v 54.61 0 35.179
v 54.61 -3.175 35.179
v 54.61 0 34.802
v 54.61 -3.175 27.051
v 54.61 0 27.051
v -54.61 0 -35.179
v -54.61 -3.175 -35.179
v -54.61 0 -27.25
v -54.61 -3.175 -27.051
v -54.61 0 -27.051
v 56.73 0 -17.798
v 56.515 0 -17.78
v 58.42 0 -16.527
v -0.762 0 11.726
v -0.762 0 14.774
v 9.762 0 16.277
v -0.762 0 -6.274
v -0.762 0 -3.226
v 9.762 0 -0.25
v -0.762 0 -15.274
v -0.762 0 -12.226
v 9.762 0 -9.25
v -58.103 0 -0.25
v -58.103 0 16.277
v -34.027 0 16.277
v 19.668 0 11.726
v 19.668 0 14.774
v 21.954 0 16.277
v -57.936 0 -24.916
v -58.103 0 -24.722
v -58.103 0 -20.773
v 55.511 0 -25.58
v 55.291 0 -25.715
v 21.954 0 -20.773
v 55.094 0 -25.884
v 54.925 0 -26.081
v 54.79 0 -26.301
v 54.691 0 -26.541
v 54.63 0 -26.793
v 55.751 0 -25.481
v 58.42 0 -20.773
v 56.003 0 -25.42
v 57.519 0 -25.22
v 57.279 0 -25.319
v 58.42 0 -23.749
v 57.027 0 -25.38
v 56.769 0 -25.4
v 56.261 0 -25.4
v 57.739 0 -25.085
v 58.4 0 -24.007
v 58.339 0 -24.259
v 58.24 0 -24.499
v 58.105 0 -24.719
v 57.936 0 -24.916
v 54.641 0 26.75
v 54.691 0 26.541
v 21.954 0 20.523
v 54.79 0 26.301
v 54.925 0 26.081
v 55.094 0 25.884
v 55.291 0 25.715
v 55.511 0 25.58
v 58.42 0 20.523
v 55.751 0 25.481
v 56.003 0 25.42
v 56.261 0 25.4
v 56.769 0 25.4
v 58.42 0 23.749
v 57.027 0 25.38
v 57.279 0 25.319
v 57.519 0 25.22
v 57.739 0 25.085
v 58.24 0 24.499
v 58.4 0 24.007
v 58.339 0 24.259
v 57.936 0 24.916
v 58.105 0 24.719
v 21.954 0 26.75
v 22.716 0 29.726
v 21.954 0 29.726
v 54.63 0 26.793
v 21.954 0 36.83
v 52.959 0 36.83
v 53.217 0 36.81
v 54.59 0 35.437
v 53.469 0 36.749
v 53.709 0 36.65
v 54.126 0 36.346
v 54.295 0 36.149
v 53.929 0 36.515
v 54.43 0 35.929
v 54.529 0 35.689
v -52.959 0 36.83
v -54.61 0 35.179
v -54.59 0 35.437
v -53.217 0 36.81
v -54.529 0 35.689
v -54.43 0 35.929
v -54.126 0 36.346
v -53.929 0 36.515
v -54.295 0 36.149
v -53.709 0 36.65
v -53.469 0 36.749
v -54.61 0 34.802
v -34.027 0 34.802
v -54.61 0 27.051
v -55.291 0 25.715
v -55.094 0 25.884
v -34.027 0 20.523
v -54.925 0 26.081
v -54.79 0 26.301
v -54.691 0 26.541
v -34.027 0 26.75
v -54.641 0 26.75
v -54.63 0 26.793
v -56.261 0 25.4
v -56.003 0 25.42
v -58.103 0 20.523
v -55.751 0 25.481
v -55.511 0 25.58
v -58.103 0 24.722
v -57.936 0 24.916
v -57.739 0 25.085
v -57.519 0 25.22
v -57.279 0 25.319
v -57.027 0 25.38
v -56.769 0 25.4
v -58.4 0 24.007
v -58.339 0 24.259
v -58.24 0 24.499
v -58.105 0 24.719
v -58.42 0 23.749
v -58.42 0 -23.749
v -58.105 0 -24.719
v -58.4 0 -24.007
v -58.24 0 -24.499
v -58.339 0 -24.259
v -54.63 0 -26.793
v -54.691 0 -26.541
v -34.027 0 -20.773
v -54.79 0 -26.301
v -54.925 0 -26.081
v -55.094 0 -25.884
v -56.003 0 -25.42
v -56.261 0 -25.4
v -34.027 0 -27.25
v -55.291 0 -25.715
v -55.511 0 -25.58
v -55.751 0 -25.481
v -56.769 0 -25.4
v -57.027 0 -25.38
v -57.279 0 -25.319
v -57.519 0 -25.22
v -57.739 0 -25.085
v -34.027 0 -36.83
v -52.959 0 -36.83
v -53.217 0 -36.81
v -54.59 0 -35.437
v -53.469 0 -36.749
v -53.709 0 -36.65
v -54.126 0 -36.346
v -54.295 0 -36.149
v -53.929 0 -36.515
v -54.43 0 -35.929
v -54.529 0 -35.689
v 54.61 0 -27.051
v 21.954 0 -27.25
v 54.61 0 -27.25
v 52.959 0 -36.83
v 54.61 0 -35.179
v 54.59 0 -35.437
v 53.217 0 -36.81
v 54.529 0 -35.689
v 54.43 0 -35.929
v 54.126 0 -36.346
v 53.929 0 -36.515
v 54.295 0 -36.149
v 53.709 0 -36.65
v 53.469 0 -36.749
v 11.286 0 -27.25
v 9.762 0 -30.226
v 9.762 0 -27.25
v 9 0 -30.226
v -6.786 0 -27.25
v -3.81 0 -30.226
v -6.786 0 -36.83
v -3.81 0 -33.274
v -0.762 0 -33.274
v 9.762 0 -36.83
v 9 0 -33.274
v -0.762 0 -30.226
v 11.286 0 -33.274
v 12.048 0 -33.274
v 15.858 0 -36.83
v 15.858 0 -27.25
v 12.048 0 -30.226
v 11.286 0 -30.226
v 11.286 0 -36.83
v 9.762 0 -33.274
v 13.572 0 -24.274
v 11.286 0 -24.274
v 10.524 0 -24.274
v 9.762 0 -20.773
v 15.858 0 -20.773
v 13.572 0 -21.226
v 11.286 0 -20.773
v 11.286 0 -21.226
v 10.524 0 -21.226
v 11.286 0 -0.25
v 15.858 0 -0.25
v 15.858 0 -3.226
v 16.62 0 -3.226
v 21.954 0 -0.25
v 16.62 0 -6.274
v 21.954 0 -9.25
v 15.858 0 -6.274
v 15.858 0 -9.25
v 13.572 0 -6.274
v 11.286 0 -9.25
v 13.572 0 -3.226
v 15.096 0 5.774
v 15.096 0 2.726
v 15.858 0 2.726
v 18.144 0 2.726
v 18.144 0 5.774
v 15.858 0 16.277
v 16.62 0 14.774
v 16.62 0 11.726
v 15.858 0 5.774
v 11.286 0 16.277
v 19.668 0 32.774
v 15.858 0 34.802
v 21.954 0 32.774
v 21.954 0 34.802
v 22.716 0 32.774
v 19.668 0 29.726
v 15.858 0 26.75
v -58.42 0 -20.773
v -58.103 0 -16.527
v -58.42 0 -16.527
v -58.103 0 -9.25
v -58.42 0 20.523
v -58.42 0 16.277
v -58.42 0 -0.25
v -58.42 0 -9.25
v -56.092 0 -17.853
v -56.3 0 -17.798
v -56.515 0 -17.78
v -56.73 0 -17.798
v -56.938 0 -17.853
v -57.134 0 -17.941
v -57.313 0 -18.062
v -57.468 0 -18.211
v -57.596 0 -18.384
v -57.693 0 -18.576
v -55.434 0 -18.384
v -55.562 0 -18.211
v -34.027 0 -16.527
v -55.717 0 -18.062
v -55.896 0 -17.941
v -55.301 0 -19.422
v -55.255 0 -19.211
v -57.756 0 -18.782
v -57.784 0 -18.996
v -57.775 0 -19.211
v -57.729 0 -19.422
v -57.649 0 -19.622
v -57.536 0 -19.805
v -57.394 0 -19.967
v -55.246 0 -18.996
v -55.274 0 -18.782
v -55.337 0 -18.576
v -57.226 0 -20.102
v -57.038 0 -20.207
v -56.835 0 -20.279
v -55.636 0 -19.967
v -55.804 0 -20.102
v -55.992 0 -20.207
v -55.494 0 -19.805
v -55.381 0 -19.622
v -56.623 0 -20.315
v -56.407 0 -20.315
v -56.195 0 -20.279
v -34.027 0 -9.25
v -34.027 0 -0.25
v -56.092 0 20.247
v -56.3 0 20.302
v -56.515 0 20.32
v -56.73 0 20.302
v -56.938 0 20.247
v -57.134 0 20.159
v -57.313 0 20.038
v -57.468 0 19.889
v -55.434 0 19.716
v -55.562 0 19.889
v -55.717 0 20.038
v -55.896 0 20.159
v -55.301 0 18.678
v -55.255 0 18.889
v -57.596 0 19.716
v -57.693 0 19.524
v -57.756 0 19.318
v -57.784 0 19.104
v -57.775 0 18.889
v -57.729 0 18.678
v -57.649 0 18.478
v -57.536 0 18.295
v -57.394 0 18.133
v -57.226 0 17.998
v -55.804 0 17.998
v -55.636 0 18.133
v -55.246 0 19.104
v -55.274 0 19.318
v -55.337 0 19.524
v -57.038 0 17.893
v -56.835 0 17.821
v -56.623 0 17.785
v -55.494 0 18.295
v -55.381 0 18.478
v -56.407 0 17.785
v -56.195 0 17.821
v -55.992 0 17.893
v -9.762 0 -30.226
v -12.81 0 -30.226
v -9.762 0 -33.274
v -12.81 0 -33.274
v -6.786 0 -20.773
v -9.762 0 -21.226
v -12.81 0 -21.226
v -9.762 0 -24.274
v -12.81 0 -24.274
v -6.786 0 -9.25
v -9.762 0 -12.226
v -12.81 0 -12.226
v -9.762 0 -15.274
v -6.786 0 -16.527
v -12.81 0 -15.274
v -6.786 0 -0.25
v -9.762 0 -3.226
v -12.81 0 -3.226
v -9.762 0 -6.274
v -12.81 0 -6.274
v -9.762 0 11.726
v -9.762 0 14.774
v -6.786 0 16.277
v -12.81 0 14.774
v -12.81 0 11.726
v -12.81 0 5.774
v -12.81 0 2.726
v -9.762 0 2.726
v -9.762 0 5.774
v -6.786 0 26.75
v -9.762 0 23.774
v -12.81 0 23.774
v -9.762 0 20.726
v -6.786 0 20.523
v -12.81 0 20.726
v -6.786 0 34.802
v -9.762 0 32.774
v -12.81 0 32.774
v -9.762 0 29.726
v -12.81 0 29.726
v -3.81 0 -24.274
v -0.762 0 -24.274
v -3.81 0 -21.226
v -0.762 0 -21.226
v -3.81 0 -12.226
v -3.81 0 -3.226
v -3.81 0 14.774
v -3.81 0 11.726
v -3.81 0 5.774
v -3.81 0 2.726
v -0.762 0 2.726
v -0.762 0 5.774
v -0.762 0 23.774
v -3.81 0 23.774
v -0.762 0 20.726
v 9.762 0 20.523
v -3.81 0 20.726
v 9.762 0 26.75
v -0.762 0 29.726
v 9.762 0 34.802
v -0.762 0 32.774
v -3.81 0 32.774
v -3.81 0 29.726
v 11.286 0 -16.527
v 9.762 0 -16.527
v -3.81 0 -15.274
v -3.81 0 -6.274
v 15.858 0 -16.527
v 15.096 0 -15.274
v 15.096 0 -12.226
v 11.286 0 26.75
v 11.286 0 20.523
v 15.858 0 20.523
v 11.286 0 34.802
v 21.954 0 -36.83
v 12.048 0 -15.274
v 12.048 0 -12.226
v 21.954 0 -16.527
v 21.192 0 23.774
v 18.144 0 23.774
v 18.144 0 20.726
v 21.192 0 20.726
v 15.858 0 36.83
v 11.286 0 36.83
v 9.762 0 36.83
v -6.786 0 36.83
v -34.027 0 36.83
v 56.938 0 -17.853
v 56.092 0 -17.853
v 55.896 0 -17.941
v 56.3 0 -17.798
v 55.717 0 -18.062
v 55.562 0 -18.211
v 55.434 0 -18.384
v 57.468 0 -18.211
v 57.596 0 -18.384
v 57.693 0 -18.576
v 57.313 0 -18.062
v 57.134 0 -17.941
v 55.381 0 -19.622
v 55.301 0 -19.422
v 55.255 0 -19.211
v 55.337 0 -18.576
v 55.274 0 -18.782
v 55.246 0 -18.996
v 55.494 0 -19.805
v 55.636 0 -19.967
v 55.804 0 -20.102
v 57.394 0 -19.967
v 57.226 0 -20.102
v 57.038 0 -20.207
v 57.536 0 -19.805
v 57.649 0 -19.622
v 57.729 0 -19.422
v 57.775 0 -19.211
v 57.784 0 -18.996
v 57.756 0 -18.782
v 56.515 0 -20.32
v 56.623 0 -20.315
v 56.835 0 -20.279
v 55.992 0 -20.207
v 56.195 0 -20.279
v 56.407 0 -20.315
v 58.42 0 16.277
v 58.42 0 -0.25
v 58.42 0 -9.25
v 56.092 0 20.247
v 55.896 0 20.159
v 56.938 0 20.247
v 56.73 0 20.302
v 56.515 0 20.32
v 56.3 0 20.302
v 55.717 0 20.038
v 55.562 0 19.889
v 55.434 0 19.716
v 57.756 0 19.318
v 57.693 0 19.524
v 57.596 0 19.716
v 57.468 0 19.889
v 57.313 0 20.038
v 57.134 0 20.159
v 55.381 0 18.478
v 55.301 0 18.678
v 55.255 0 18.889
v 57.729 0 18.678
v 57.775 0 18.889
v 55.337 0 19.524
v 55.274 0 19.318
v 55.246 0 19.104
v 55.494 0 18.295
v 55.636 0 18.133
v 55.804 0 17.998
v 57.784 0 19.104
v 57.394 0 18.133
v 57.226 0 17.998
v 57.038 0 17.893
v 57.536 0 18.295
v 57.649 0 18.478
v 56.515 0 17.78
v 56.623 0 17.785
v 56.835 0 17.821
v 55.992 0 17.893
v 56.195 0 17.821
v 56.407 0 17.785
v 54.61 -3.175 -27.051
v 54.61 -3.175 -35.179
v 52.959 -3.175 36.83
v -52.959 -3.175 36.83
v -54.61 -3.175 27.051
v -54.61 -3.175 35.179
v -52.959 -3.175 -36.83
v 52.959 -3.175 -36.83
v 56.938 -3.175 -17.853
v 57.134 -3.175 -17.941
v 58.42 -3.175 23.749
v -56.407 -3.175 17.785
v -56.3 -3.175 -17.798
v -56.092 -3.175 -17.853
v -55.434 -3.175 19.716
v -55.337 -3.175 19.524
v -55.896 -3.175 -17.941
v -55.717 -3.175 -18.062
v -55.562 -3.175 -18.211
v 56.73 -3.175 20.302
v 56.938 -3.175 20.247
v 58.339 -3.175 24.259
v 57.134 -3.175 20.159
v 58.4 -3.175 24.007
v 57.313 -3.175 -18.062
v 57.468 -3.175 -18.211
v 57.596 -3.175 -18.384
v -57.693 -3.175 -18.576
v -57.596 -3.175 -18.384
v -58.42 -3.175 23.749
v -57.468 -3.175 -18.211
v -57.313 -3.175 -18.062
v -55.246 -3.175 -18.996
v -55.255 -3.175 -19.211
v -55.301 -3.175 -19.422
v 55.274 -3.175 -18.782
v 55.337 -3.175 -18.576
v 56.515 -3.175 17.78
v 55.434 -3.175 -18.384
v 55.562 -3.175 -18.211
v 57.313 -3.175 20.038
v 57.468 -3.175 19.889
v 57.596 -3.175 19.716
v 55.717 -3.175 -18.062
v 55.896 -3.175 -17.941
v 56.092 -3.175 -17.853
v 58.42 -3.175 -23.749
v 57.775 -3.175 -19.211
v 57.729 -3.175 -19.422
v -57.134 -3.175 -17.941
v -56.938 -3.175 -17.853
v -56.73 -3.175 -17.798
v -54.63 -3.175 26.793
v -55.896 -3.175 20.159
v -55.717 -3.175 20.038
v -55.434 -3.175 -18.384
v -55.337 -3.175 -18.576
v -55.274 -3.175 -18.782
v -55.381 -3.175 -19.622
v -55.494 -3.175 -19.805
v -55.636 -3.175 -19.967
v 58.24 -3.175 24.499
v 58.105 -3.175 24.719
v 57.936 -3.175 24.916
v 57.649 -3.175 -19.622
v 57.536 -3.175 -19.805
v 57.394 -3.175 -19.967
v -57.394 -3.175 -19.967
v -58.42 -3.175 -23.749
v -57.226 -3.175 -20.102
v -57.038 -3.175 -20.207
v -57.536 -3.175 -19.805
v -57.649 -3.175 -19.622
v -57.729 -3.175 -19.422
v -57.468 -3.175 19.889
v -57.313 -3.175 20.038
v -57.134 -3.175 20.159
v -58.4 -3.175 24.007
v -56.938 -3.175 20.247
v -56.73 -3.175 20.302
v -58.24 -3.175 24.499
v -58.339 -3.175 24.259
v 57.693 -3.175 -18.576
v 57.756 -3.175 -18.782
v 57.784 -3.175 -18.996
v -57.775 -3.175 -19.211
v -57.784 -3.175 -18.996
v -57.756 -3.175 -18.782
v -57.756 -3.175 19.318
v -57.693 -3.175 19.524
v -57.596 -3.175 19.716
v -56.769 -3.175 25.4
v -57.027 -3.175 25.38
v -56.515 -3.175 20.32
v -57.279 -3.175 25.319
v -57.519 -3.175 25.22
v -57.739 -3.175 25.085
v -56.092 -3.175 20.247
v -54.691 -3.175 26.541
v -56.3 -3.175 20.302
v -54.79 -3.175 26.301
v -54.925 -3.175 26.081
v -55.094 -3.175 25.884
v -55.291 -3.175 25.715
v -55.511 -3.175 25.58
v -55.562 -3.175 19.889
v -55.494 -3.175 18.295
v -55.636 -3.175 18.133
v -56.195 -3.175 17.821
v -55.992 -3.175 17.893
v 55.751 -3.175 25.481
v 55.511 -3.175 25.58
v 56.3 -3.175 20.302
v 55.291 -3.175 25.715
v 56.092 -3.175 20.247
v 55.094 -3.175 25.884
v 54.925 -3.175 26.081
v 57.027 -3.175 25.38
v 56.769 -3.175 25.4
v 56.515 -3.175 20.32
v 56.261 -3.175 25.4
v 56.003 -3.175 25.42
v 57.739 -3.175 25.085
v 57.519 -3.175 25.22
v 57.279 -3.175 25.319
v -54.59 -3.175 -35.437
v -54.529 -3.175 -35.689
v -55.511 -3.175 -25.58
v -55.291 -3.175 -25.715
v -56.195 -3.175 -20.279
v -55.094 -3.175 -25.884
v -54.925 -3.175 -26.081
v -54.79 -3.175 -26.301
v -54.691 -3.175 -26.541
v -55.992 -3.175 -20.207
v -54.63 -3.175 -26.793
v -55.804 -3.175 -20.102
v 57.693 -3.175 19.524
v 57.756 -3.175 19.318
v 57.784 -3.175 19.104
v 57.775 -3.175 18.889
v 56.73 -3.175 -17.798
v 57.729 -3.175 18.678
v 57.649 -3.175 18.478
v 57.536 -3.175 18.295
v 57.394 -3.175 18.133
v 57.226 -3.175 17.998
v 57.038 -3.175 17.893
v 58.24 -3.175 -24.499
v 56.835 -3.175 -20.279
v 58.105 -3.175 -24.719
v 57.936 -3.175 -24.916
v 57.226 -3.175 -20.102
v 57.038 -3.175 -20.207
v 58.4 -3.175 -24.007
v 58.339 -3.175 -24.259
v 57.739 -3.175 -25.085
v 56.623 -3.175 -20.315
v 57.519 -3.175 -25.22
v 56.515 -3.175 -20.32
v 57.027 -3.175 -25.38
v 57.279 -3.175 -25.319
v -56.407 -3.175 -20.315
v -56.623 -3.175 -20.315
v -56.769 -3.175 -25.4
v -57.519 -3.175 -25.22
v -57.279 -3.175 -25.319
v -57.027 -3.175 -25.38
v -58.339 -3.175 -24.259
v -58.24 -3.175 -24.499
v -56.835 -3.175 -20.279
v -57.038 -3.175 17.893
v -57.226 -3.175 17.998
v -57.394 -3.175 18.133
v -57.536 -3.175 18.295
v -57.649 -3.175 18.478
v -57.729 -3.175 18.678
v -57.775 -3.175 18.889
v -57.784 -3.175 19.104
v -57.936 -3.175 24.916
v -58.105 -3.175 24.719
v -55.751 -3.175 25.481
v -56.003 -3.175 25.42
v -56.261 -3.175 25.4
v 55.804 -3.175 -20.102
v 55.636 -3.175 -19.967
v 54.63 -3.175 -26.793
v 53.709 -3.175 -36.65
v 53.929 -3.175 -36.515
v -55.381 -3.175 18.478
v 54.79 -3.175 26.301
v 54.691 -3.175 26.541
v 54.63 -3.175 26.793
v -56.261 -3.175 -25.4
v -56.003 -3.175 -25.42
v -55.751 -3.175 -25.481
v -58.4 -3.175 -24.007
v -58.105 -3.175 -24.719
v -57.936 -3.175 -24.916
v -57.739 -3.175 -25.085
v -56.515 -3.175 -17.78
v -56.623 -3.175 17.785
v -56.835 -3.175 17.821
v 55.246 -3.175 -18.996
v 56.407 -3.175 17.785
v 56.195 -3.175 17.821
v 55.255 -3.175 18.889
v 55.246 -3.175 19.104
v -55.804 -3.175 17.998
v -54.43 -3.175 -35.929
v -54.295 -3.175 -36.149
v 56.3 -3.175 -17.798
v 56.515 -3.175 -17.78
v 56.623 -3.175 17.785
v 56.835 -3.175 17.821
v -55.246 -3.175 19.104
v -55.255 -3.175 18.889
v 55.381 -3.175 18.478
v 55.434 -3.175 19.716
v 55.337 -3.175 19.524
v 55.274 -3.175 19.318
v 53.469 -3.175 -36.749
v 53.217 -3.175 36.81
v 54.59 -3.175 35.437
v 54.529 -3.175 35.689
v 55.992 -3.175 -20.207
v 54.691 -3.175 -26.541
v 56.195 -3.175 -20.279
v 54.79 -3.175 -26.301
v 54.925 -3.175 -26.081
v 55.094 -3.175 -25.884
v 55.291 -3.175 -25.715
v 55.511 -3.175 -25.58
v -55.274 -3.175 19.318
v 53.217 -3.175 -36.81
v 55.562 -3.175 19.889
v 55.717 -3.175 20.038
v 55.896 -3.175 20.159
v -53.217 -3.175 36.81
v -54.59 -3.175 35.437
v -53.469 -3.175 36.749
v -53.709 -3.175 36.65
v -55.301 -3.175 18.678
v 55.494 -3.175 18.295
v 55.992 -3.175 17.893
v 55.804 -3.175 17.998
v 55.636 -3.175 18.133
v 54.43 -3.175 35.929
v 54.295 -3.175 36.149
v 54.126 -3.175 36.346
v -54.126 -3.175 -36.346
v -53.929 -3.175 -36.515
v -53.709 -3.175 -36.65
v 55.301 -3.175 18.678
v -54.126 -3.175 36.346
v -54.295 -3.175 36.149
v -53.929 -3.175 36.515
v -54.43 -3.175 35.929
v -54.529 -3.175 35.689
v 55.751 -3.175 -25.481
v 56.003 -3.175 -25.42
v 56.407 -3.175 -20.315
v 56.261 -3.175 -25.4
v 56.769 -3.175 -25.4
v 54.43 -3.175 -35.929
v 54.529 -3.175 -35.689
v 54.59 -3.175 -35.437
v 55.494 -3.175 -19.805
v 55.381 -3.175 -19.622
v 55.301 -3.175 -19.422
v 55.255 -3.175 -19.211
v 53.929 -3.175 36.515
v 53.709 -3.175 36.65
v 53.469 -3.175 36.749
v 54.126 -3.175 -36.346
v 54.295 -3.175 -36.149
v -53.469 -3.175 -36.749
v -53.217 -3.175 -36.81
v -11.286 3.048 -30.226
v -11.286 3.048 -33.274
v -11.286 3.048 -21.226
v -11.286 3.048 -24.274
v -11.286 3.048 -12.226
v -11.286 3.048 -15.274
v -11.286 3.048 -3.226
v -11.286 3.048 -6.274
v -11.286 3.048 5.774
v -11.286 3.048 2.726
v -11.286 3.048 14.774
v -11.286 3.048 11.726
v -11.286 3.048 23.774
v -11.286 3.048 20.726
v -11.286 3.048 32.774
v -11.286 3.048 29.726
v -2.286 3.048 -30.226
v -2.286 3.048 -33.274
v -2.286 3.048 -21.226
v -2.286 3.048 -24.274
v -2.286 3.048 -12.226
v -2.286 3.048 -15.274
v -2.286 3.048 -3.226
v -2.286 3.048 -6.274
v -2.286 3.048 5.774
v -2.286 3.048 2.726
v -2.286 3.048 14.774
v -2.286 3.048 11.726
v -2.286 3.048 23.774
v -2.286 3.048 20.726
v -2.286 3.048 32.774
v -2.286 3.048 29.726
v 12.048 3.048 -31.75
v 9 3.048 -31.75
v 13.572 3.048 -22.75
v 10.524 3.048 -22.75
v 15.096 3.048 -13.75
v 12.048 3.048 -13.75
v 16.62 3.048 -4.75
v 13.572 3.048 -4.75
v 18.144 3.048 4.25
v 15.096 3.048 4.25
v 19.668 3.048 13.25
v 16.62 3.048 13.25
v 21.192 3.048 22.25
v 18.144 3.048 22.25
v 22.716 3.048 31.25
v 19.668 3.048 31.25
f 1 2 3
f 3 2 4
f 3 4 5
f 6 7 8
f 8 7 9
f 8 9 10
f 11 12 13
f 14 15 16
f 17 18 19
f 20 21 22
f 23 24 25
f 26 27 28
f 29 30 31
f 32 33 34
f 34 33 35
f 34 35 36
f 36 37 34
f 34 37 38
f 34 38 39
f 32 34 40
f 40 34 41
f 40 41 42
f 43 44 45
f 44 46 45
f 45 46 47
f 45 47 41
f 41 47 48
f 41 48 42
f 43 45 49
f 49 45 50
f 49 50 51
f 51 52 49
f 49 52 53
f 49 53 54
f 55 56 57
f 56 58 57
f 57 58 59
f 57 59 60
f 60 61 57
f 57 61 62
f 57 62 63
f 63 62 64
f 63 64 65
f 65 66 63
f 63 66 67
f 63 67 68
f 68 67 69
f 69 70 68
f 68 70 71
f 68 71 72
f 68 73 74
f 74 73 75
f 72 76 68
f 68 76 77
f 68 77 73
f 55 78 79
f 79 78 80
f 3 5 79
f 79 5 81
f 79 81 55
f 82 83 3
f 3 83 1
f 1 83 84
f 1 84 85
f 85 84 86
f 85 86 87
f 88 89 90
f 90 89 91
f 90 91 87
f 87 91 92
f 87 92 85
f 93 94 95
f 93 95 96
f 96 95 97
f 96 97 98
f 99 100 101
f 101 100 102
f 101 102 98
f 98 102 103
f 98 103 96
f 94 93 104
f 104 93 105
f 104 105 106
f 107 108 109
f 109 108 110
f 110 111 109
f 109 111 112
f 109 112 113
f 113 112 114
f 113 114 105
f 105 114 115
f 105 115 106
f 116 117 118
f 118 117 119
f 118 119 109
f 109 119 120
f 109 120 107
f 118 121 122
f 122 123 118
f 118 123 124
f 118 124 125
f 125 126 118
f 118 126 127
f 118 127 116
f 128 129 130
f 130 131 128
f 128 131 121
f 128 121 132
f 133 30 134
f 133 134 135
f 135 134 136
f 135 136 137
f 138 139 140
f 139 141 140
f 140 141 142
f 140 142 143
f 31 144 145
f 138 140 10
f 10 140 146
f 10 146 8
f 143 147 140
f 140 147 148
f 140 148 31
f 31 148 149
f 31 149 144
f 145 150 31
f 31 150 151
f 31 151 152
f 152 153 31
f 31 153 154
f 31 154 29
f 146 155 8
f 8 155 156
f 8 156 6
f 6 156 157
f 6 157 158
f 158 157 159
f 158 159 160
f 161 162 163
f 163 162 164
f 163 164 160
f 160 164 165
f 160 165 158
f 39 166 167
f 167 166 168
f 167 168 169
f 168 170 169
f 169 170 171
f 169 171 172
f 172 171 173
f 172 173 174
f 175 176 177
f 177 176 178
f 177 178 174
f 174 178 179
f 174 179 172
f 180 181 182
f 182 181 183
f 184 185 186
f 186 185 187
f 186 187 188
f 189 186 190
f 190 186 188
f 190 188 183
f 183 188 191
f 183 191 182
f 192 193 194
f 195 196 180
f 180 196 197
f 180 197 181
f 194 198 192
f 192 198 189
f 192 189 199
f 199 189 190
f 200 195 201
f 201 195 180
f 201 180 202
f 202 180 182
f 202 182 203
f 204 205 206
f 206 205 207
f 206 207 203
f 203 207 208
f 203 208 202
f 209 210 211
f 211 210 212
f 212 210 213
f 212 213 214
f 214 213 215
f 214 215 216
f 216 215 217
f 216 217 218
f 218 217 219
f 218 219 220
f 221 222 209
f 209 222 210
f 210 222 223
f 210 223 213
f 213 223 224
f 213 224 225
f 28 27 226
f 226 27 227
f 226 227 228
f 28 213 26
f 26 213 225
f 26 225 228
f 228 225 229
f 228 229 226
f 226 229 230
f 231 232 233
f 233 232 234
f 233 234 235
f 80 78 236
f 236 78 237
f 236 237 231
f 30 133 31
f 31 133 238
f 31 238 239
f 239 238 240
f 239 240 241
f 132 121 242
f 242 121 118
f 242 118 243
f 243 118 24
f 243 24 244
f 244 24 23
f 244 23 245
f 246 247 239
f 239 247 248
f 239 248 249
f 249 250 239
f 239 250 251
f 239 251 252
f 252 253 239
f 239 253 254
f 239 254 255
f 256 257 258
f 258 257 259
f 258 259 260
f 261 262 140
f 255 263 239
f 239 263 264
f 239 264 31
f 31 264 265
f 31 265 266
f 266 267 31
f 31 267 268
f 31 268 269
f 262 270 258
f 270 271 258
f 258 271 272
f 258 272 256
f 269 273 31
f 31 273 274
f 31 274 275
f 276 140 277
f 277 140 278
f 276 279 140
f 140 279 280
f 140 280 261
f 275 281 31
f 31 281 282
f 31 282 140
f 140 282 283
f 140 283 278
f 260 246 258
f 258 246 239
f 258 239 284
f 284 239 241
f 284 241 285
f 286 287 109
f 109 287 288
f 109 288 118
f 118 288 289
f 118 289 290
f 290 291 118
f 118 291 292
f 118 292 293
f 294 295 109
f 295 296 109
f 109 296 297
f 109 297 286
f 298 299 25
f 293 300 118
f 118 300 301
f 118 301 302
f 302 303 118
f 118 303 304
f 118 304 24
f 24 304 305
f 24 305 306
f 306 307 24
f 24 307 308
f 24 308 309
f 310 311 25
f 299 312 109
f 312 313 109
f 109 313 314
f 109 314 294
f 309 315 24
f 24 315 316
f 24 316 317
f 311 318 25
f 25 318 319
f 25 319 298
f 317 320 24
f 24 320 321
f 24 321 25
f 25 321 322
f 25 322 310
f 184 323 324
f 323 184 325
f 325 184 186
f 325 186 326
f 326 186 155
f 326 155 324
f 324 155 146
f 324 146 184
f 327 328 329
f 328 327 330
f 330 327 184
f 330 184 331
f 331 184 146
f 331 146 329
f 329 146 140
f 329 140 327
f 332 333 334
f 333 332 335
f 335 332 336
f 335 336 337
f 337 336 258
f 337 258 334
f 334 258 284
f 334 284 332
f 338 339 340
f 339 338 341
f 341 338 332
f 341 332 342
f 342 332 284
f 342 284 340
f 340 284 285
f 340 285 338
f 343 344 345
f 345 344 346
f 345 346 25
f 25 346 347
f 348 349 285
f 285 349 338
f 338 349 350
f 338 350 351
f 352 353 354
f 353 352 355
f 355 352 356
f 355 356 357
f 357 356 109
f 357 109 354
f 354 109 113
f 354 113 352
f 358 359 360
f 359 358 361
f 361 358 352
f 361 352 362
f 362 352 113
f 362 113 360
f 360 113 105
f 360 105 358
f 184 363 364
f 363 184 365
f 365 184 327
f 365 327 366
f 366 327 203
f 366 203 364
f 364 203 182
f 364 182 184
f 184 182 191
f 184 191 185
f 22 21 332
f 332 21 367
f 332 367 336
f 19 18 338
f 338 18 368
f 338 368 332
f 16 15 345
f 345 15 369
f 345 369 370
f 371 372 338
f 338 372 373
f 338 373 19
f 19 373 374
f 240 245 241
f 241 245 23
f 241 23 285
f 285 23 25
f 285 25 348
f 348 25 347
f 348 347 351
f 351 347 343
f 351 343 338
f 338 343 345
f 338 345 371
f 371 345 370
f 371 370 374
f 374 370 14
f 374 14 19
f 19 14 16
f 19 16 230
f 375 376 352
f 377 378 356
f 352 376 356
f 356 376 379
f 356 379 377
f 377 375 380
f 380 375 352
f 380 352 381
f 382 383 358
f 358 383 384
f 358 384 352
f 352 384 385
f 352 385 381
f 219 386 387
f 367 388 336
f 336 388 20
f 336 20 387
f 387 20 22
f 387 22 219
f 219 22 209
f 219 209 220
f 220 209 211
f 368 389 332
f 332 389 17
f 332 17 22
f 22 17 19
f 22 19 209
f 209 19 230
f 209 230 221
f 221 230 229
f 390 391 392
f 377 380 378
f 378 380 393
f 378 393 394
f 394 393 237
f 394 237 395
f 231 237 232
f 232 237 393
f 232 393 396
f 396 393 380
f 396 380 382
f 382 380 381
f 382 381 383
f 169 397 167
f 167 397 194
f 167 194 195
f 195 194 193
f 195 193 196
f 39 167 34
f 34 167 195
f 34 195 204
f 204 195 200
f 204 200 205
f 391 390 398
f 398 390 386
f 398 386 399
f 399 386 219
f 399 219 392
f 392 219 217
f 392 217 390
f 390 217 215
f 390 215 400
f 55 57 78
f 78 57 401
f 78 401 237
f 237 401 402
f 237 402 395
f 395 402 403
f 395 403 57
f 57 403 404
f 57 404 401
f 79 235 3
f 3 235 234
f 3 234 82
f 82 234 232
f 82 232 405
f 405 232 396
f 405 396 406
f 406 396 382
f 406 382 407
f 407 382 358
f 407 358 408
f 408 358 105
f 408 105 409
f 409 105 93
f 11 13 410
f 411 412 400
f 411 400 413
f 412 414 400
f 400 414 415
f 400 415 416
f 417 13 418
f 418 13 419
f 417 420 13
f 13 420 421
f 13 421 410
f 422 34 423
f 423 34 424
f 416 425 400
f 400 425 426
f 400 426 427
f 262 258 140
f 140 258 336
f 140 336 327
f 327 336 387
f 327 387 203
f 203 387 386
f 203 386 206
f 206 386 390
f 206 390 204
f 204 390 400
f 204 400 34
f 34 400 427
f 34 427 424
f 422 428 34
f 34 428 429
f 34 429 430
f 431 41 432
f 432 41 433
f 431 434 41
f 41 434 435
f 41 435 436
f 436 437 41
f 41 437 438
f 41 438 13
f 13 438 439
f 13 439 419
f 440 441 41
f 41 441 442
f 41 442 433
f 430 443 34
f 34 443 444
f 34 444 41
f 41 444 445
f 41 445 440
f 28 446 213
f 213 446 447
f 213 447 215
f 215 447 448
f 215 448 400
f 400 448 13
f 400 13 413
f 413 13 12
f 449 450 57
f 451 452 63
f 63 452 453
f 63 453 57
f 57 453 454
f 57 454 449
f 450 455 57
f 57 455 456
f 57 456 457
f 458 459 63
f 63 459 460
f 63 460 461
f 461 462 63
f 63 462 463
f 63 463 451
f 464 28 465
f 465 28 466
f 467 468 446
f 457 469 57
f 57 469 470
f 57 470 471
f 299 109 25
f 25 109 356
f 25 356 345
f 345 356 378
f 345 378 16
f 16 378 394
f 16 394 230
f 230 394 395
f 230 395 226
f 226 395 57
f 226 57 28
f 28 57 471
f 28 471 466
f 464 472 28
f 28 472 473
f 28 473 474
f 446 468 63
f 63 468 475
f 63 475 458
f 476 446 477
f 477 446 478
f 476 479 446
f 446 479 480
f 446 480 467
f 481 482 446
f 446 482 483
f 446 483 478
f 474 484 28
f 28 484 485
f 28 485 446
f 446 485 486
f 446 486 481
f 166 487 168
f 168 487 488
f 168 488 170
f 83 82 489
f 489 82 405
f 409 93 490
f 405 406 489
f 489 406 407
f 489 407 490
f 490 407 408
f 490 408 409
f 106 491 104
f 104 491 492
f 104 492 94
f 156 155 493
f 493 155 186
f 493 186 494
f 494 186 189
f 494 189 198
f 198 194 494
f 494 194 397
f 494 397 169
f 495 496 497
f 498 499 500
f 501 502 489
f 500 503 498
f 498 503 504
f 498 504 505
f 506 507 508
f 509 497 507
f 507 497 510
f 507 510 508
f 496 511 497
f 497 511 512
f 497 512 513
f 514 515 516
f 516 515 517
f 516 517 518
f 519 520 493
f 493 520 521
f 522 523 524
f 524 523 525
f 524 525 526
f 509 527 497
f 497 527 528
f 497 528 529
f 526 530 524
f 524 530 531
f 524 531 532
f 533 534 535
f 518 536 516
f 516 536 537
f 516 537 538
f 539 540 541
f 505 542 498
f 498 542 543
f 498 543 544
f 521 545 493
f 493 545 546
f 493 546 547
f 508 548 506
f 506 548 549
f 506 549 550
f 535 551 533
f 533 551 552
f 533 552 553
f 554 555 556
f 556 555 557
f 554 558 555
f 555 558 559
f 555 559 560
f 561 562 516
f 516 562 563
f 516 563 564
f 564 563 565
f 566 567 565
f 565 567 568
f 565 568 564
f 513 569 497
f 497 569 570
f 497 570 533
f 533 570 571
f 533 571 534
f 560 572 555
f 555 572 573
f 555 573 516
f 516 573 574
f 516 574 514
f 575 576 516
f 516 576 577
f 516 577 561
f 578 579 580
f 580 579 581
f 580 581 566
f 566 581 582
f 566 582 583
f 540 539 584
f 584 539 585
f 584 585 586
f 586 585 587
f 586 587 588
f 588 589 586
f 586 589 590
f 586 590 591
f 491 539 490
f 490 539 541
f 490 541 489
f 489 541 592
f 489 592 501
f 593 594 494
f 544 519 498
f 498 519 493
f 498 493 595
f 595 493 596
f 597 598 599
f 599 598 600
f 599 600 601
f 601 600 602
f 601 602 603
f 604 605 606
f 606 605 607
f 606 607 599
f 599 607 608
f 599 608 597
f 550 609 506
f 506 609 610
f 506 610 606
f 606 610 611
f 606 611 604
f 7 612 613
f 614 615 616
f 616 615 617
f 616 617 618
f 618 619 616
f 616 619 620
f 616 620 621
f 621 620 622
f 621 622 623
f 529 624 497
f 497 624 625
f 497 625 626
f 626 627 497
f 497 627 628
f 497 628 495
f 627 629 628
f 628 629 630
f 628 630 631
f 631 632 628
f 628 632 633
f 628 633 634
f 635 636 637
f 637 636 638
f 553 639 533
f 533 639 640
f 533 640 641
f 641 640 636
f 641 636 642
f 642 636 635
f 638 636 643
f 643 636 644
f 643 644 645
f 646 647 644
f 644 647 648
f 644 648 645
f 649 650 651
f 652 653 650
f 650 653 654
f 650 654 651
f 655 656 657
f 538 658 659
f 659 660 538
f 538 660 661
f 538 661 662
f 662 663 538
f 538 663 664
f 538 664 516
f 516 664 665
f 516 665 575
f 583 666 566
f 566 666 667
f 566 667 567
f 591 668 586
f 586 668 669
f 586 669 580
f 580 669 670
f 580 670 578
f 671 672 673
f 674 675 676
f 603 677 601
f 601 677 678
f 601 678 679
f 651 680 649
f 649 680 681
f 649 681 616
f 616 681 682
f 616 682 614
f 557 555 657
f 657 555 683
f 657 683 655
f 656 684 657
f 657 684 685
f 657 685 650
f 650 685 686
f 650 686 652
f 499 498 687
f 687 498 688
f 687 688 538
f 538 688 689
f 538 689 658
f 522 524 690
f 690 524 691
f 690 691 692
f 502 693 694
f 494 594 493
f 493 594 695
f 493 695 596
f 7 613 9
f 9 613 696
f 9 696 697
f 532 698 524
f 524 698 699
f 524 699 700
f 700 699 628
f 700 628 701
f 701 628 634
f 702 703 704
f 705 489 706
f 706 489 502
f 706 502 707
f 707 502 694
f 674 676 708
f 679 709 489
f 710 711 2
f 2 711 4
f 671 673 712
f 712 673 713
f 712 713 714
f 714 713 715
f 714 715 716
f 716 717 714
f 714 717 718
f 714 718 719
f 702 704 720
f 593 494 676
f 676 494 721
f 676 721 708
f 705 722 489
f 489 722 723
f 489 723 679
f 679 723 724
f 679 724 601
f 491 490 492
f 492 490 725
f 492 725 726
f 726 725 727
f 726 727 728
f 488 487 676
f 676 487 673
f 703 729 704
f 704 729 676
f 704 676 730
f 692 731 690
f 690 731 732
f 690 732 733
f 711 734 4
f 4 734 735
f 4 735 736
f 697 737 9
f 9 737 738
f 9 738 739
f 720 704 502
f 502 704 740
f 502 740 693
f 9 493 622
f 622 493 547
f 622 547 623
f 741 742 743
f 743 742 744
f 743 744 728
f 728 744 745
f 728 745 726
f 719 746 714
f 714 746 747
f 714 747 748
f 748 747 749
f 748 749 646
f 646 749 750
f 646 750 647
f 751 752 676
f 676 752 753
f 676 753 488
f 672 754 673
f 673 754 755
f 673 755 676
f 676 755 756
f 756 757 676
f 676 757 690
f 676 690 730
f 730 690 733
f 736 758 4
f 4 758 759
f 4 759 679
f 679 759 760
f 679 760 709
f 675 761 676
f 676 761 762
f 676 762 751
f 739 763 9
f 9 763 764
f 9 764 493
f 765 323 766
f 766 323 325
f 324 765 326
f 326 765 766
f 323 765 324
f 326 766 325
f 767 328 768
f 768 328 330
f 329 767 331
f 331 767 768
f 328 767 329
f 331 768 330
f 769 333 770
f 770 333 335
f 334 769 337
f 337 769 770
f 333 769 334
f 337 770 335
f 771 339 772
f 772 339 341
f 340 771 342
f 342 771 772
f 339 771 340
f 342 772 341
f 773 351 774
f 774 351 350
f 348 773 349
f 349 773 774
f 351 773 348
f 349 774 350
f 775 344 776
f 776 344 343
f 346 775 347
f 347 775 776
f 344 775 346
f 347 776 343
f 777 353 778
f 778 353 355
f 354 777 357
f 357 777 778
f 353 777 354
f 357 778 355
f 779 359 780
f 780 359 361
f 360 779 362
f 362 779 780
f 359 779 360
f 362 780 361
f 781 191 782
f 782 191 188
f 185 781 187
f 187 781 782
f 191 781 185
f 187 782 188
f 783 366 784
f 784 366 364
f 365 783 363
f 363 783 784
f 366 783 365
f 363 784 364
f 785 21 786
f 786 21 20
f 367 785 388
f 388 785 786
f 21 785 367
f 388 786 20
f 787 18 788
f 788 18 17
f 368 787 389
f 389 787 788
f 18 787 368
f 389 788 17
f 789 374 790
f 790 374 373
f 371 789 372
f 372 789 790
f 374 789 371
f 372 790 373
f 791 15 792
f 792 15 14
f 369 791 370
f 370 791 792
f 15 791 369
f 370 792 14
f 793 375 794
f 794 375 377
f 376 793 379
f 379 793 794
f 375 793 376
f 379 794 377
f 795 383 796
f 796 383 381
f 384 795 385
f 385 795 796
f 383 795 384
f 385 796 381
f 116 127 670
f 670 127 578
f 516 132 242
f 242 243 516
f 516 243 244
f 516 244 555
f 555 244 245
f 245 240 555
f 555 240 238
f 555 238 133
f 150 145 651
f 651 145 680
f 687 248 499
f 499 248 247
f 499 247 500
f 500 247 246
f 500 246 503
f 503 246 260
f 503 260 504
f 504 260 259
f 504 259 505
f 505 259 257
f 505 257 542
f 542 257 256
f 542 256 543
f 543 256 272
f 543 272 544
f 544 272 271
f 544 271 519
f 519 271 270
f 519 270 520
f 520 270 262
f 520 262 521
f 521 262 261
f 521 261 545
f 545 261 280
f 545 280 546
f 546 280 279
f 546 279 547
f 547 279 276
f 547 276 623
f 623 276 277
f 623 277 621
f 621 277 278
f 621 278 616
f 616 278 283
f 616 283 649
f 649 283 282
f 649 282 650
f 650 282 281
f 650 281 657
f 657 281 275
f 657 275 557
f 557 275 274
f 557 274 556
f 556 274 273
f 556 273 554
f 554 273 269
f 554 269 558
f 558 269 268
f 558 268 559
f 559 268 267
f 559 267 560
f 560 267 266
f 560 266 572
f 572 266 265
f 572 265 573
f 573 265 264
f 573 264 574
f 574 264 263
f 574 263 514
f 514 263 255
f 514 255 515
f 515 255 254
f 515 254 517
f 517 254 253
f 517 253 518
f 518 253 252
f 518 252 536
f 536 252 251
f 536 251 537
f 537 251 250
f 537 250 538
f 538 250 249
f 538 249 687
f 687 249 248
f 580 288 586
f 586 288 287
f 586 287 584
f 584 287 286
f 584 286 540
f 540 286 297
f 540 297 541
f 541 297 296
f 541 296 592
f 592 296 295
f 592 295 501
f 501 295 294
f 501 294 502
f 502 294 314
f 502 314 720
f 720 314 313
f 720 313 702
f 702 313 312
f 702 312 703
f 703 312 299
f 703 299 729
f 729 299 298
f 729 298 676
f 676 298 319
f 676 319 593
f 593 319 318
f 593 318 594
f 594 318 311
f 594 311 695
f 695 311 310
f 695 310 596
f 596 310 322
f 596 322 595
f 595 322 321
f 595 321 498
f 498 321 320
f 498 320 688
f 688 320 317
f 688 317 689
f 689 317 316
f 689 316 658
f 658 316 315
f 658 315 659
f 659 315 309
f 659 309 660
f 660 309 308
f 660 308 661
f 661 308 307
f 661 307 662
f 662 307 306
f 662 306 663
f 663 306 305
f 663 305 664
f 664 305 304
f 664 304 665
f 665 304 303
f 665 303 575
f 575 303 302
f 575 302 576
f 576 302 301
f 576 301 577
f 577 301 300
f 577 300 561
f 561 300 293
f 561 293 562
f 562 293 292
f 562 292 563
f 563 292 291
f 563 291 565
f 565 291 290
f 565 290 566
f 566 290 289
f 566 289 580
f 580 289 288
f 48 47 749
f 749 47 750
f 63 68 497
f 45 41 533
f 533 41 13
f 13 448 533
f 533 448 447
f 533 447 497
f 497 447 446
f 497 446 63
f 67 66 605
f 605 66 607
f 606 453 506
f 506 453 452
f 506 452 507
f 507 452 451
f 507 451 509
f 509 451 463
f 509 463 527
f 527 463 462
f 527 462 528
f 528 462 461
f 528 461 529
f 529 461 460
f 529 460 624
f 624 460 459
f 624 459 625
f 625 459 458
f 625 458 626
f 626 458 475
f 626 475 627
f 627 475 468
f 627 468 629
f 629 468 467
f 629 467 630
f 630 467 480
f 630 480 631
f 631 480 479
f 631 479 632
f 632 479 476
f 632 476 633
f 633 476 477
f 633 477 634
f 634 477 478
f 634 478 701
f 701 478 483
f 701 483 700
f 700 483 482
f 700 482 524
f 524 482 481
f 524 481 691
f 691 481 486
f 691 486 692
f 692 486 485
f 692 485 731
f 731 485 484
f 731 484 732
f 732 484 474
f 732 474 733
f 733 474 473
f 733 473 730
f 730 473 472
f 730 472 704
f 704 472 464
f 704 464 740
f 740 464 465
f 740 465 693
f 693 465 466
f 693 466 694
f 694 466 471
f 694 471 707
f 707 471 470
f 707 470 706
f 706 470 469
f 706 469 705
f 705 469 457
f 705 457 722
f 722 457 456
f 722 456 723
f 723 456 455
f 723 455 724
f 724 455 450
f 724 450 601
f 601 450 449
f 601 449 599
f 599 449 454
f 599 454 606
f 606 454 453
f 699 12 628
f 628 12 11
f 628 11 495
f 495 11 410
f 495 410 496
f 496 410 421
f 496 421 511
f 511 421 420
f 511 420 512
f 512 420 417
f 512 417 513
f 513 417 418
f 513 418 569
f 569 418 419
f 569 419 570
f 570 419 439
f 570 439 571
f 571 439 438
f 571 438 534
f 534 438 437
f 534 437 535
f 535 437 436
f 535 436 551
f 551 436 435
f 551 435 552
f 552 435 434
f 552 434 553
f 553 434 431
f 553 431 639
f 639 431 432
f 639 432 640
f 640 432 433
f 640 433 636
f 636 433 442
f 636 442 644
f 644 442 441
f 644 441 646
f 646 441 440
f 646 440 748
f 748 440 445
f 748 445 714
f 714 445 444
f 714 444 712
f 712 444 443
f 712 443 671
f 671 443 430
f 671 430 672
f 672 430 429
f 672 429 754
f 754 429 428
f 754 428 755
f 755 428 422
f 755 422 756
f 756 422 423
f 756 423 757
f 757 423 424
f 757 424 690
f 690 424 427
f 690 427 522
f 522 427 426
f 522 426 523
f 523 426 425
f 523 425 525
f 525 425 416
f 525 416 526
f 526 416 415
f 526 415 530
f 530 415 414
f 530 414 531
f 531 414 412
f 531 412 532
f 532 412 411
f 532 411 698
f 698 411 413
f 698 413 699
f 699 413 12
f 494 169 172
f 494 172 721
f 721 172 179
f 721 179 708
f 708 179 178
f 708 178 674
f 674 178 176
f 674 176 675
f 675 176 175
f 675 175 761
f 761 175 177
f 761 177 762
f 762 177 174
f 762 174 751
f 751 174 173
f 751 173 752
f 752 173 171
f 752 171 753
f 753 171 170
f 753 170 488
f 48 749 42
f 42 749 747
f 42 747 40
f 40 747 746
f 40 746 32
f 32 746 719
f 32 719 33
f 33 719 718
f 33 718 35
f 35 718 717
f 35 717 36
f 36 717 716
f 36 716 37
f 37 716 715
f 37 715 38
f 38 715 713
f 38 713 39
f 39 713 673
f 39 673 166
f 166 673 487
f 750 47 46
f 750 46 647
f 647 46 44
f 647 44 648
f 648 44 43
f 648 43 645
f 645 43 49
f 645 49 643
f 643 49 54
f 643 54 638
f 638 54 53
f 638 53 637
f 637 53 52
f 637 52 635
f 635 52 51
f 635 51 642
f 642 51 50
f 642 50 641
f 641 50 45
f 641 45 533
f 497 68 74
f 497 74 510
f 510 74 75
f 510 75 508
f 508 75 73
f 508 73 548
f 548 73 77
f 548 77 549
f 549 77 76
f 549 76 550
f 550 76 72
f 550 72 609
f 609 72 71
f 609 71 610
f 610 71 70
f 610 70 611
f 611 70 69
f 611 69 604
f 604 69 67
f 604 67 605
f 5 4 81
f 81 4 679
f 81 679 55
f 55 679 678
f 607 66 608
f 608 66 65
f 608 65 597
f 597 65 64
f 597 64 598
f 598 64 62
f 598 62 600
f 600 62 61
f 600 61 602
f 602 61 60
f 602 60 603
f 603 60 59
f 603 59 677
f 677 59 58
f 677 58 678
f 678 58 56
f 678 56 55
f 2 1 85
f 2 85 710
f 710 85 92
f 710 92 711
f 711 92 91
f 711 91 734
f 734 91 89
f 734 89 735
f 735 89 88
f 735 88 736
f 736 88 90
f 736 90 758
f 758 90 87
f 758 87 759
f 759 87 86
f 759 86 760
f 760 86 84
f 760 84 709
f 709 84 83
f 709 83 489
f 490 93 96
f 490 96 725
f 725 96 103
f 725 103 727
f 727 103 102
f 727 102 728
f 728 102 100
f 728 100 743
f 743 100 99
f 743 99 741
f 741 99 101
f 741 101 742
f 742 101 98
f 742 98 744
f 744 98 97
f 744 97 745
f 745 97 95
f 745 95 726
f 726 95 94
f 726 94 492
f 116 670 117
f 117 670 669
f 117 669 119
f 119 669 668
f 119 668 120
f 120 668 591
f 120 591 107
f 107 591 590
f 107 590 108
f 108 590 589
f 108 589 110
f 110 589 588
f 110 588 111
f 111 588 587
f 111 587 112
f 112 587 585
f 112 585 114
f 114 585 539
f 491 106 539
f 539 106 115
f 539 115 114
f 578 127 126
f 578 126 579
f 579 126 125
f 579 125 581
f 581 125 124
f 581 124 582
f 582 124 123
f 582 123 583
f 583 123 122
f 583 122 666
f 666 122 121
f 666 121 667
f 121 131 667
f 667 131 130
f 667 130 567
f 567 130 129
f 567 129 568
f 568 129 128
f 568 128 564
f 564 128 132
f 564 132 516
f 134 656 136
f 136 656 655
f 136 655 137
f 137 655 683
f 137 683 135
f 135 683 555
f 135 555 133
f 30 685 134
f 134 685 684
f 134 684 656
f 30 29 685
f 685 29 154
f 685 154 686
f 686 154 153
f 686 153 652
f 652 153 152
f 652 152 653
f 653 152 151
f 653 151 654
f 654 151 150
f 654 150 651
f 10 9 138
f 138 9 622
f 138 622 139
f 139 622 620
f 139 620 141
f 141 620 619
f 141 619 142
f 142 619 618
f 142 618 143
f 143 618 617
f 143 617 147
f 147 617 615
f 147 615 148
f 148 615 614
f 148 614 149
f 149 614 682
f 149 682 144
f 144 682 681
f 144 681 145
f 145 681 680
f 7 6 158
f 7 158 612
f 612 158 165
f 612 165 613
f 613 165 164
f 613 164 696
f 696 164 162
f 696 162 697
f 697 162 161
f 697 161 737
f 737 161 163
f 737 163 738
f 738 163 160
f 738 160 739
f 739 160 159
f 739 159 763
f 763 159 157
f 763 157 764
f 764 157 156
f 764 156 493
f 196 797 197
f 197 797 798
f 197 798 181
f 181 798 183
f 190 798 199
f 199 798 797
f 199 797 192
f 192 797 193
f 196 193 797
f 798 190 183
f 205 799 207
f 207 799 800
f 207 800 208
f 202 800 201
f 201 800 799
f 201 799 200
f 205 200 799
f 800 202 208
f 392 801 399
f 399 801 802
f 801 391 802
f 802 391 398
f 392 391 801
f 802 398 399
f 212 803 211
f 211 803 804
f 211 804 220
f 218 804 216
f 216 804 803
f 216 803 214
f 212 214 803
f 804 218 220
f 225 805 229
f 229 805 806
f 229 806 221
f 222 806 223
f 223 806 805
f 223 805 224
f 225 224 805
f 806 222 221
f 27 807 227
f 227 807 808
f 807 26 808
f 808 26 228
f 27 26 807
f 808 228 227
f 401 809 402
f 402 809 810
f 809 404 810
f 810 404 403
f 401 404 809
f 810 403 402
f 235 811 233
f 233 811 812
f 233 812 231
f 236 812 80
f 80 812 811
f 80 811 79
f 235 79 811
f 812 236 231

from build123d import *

# Parameters (mm, degrees)
SKETCH1_W            = 109.22
SKETCH1_H            = 73.66
BOSS_EXTRUDE1_DEPTH  = 3.175
BOSS_EXTRUDE3_DEPTH  = 1.524
LPATTERN1_COUNT      = 2
LPATTERN1_PITCH      = 9.000000034
LPATTERN1_COUNT_DIR2 = 8
LPATTERN1_PITCH_DIR2 = 9.000000034
SKETCH3_W            = 3.81
SKETCH3_H            = 50.8
SKETCH3_R            = 1.27
BOSS_EXTRUDE2_DEPTH  = 3.175
FILLET1_R            = 1.651
BOSS_EXTRUDE4_START  = 8.999982
BOSS_EXTRUDE4_DEPTH  = 3.048
BOSS_EXTRUDE5_START  = 10.523982
BOSS_EXTRUDE5_DEPTH  = 3.048
BOSS_EXTRUDE6_START  = 12.047982
BOSS_EXTRUDE6_DEPTH  = 3.048
BOSS_EXTRUDE7_START  = 13.571982
BOSS_EXTRUDE7_DEPTH  = 3.048
BOSS_EXTRUDE8_START  = 15.095982
BOSS_EXTRUDE8_DEPTH  = 3.048
BOSS_EXTRUDE9_START  = 16.619982
BOSS_EXTRUDE9_DEPTH  = 3.048
BOSS_EXTRUDE10_START = 18.143982
BOSS_EXTRUDE10_DEPTH = 3.048
BOSS_EXTRUDE11_START = 19.667982
BOSS_EXTRUDE11_DEPTH = 3.048


with BuildPart() as part:
    # Sketch1 → Boss-Extrude1 (new body)
    with BuildSketch(Plane(origin=(0, 0, 0), x_dir=(1, 0, 0), z_dir=(0, 1, 0))):
        Rectangle(SKETCH1_W, SKETCH1_H)
    extrude(amount=-BOSS_EXTRUDE1_DEPTH)

    # Sketch2 → Boss-Extrude3 (add, symmetric)
    with BuildSketch(Plane.XY.offset(-31.75)):
        Polygon((-12.810000034, 0), (-11.286000034, 3.048), (-9.762000034, 0), (-11.286000034, 0), align=None)
    boss_extrude3 = extrude(amount=BOSS_EXTRUDE3_DEPTH, both=True)

    # LPattern1: Boss-Extrude3 2 × 8
    with Locations(*[(i * LPATTERN1_PITCH, 0, j * LPATTERN1_PITCH_DIR2) for i in range(LPATTERN1_COUNT) for j in range(LPATTERN1_COUNT_DIR2) if (i, j) != (0, 0)]):
        add(boss_extrude3)

    # Sketch3 → Boss-Extrude2 (add)
    # profile 1 of 2: a face of its own
    with BuildSketch(Plane(origin=(0, 0, 0), x_dir=(1, 0, 0), z_dir=(0, 1, 0))):
        with Locations((-56.515, 0)):
            Rectangle(SKETCH3_W, SKETCH3_H)
        with Locations(Location((-56.515, 19.05, 0), (0, 0, 270))):
            Circle(SKETCH3_R, mode=Mode.SUBTRACT)
        with Locations(Location((-56.515, -19.05, 0), (0, 0, 270))):
            Circle(SKETCH3_R, mode=Mode.SUBTRACT)
    # profile 2 of 2: a face of its own
    with BuildSketch(Plane(origin=(0, 0, 0), x_dir=(1, 0, 0), z_dir=(0, 1, 0))):
        with Locations((56.515, 0)):
            Rectangle(SKETCH3_W, SKETCH3_H)
        with Locations(Location((56.515, -19.05, 0), (0, 0, 90))):
            Circle(SKETCH3_R, mode=Mode.SUBTRACT)
        with Locations(Location((56.515, 19.05, 0), (0, 0, 90))):
            Circle(SKETCH3_R, mode=Mode.SUBTRACT)
    extrude(amount=-BOSS_EXTRUDE2_DEPTH)

    # Fillet1
    fillet1_edges = [part.edges().sort_by_distance(p)[0] for p in [
        (-54.61, -1.5875, -25.4),
        (-54.61, -1.5875, 25.4),
        (-58.42, -1.5875, 25.4),
        (-58.42, -1.5875, -25.4),
        (54.61, -1.5875, -25.4),
        (58.42, -1.5875, -25.4),
        (58.42, -1.5875, 25.4),
        (54.61, -1.5875, 25.4),
        (54.61, -1.5875, 36.83),
        (-54.61, -1.5875, 36.83),
        (-54.61, -1.5875, -36.83),
        (54.61, -1.5875, -36.83),
    ]]
    fillet(fillet1_edges, radius=FILLET1_R)

    # Sketch4 → Boss-Extrude4 (add)
    with BuildSketch(Plane(origin=(0, 0, 0), x_dir=(0, 0, -1), z_dir=(1, 0, 0)).offset(BOSS_EXTRUDE4_START)):
        Polygon((30.226, 0), (33.274, 0), (31.75, 3.048), align=None)
    extrude(amount=BOSS_EXTRUDE4_DEPTH)

    # Sketch5 → Boss-Extrude5 (add)
    with BuildSketch(Plane(origin=(0, 0, 0), x_dir=(0, 0, -1), z_dir=(1, 0, 0)).offset(BOSS_EXTRUDE5_START)):
        Polygon((21.225999966, 0), (24.273999966, 0), (22.749999966, 3.048), align=None)
    extrude(amount=BOSS_EXTRUDE5_DEPTH)

    # Sketch6 → Boss-Extrude6 (add)
    with BuildSketch(Plane(origin=(0, 0, 0), x_dir=(0, 0, -1), z_dir=(1, 0, 0)).offset(BOSS_EXTRUDE6_START)):
        Polygon((12.225999932, 0), (15.273999932, 0), (13.749999932, 3.048), align=None)
    extrude(amount=BOSS_EXTRUDE6_DEPTH)

    # Sketch7 → Boss-Extrude7 (add)
    with BuildSketch(Plane(origin=(0, 0, 0), x_dir=(0, 0, -1), z_dir=(1, 0, 0)).offset(BOSS_EXTRUDE7_START)):
        Polygon((3.225999898, 0), (6.273999898, 0), (4.749999898, 3.048), align=None)
    extrude(amount=BOSS_EXTRUDE7_DEPTH)

    # Sketch8 → Boss-Extrude8 (add)
    with BuildSketch(Plane(origin=(0, 0, 0), x_dir=(0, 0, -1), z_dir=(1, 0, 0)).offset(BOSS_EXTRUDE8_START)):
        Polygon((-5.774000136, 0), (-2.726000136, 0), (-4.250000136, 3.048), align=None)
    extrude(amount=BOSS_EXTRUDE8_DEPTH)

    # Sketch9 → Boss-Extrude9 (add)
    with BuildSketch(Plane(origin=(0, 0, 0), x_dir=(0, 0, -1), z_dir=(1, 0, 0)).offset(BOSS_EXTRUDE9_START)):
        Polygon((-14.77400017, 0), (-11.72600017, 0), (-13.25000017, 3.048), align=None)
    extrude(amount=BOSS_EXTRUDE9_DEPTH)

    # Sketch10 → Boss-Extrude10 (add)
    with BuildSketch(Plane(origin=(0, 0, 0), x_dir=(0, 0, -1), z_dir=(1, 0, 0)).offset(BOSS_EXTRUDE10_START)):
        Polygon((-23.774000204, 0), (-20.726000204, 0), (-22.250000204, 3.048), align=None)
    extrude(amount=BOSS_EXTRUDE10_DEPTH)

    # Sketch11 → Boss-Extrude11 (add)
    with BuildSketch(Plane(origin=(0, 0, 0), x_dir=(0, 0, -1), z_dir=(1, 0, 0)).offset(BOSS_EXTRUDE11_START)):
        Polygon((-32.774000238, 0), (-29.726000238, 0), (-31.250000238, 3.048), align=None)
    extrude(amount=BOSS_EXTRUDE11_DEPTH)


solid = part.part
